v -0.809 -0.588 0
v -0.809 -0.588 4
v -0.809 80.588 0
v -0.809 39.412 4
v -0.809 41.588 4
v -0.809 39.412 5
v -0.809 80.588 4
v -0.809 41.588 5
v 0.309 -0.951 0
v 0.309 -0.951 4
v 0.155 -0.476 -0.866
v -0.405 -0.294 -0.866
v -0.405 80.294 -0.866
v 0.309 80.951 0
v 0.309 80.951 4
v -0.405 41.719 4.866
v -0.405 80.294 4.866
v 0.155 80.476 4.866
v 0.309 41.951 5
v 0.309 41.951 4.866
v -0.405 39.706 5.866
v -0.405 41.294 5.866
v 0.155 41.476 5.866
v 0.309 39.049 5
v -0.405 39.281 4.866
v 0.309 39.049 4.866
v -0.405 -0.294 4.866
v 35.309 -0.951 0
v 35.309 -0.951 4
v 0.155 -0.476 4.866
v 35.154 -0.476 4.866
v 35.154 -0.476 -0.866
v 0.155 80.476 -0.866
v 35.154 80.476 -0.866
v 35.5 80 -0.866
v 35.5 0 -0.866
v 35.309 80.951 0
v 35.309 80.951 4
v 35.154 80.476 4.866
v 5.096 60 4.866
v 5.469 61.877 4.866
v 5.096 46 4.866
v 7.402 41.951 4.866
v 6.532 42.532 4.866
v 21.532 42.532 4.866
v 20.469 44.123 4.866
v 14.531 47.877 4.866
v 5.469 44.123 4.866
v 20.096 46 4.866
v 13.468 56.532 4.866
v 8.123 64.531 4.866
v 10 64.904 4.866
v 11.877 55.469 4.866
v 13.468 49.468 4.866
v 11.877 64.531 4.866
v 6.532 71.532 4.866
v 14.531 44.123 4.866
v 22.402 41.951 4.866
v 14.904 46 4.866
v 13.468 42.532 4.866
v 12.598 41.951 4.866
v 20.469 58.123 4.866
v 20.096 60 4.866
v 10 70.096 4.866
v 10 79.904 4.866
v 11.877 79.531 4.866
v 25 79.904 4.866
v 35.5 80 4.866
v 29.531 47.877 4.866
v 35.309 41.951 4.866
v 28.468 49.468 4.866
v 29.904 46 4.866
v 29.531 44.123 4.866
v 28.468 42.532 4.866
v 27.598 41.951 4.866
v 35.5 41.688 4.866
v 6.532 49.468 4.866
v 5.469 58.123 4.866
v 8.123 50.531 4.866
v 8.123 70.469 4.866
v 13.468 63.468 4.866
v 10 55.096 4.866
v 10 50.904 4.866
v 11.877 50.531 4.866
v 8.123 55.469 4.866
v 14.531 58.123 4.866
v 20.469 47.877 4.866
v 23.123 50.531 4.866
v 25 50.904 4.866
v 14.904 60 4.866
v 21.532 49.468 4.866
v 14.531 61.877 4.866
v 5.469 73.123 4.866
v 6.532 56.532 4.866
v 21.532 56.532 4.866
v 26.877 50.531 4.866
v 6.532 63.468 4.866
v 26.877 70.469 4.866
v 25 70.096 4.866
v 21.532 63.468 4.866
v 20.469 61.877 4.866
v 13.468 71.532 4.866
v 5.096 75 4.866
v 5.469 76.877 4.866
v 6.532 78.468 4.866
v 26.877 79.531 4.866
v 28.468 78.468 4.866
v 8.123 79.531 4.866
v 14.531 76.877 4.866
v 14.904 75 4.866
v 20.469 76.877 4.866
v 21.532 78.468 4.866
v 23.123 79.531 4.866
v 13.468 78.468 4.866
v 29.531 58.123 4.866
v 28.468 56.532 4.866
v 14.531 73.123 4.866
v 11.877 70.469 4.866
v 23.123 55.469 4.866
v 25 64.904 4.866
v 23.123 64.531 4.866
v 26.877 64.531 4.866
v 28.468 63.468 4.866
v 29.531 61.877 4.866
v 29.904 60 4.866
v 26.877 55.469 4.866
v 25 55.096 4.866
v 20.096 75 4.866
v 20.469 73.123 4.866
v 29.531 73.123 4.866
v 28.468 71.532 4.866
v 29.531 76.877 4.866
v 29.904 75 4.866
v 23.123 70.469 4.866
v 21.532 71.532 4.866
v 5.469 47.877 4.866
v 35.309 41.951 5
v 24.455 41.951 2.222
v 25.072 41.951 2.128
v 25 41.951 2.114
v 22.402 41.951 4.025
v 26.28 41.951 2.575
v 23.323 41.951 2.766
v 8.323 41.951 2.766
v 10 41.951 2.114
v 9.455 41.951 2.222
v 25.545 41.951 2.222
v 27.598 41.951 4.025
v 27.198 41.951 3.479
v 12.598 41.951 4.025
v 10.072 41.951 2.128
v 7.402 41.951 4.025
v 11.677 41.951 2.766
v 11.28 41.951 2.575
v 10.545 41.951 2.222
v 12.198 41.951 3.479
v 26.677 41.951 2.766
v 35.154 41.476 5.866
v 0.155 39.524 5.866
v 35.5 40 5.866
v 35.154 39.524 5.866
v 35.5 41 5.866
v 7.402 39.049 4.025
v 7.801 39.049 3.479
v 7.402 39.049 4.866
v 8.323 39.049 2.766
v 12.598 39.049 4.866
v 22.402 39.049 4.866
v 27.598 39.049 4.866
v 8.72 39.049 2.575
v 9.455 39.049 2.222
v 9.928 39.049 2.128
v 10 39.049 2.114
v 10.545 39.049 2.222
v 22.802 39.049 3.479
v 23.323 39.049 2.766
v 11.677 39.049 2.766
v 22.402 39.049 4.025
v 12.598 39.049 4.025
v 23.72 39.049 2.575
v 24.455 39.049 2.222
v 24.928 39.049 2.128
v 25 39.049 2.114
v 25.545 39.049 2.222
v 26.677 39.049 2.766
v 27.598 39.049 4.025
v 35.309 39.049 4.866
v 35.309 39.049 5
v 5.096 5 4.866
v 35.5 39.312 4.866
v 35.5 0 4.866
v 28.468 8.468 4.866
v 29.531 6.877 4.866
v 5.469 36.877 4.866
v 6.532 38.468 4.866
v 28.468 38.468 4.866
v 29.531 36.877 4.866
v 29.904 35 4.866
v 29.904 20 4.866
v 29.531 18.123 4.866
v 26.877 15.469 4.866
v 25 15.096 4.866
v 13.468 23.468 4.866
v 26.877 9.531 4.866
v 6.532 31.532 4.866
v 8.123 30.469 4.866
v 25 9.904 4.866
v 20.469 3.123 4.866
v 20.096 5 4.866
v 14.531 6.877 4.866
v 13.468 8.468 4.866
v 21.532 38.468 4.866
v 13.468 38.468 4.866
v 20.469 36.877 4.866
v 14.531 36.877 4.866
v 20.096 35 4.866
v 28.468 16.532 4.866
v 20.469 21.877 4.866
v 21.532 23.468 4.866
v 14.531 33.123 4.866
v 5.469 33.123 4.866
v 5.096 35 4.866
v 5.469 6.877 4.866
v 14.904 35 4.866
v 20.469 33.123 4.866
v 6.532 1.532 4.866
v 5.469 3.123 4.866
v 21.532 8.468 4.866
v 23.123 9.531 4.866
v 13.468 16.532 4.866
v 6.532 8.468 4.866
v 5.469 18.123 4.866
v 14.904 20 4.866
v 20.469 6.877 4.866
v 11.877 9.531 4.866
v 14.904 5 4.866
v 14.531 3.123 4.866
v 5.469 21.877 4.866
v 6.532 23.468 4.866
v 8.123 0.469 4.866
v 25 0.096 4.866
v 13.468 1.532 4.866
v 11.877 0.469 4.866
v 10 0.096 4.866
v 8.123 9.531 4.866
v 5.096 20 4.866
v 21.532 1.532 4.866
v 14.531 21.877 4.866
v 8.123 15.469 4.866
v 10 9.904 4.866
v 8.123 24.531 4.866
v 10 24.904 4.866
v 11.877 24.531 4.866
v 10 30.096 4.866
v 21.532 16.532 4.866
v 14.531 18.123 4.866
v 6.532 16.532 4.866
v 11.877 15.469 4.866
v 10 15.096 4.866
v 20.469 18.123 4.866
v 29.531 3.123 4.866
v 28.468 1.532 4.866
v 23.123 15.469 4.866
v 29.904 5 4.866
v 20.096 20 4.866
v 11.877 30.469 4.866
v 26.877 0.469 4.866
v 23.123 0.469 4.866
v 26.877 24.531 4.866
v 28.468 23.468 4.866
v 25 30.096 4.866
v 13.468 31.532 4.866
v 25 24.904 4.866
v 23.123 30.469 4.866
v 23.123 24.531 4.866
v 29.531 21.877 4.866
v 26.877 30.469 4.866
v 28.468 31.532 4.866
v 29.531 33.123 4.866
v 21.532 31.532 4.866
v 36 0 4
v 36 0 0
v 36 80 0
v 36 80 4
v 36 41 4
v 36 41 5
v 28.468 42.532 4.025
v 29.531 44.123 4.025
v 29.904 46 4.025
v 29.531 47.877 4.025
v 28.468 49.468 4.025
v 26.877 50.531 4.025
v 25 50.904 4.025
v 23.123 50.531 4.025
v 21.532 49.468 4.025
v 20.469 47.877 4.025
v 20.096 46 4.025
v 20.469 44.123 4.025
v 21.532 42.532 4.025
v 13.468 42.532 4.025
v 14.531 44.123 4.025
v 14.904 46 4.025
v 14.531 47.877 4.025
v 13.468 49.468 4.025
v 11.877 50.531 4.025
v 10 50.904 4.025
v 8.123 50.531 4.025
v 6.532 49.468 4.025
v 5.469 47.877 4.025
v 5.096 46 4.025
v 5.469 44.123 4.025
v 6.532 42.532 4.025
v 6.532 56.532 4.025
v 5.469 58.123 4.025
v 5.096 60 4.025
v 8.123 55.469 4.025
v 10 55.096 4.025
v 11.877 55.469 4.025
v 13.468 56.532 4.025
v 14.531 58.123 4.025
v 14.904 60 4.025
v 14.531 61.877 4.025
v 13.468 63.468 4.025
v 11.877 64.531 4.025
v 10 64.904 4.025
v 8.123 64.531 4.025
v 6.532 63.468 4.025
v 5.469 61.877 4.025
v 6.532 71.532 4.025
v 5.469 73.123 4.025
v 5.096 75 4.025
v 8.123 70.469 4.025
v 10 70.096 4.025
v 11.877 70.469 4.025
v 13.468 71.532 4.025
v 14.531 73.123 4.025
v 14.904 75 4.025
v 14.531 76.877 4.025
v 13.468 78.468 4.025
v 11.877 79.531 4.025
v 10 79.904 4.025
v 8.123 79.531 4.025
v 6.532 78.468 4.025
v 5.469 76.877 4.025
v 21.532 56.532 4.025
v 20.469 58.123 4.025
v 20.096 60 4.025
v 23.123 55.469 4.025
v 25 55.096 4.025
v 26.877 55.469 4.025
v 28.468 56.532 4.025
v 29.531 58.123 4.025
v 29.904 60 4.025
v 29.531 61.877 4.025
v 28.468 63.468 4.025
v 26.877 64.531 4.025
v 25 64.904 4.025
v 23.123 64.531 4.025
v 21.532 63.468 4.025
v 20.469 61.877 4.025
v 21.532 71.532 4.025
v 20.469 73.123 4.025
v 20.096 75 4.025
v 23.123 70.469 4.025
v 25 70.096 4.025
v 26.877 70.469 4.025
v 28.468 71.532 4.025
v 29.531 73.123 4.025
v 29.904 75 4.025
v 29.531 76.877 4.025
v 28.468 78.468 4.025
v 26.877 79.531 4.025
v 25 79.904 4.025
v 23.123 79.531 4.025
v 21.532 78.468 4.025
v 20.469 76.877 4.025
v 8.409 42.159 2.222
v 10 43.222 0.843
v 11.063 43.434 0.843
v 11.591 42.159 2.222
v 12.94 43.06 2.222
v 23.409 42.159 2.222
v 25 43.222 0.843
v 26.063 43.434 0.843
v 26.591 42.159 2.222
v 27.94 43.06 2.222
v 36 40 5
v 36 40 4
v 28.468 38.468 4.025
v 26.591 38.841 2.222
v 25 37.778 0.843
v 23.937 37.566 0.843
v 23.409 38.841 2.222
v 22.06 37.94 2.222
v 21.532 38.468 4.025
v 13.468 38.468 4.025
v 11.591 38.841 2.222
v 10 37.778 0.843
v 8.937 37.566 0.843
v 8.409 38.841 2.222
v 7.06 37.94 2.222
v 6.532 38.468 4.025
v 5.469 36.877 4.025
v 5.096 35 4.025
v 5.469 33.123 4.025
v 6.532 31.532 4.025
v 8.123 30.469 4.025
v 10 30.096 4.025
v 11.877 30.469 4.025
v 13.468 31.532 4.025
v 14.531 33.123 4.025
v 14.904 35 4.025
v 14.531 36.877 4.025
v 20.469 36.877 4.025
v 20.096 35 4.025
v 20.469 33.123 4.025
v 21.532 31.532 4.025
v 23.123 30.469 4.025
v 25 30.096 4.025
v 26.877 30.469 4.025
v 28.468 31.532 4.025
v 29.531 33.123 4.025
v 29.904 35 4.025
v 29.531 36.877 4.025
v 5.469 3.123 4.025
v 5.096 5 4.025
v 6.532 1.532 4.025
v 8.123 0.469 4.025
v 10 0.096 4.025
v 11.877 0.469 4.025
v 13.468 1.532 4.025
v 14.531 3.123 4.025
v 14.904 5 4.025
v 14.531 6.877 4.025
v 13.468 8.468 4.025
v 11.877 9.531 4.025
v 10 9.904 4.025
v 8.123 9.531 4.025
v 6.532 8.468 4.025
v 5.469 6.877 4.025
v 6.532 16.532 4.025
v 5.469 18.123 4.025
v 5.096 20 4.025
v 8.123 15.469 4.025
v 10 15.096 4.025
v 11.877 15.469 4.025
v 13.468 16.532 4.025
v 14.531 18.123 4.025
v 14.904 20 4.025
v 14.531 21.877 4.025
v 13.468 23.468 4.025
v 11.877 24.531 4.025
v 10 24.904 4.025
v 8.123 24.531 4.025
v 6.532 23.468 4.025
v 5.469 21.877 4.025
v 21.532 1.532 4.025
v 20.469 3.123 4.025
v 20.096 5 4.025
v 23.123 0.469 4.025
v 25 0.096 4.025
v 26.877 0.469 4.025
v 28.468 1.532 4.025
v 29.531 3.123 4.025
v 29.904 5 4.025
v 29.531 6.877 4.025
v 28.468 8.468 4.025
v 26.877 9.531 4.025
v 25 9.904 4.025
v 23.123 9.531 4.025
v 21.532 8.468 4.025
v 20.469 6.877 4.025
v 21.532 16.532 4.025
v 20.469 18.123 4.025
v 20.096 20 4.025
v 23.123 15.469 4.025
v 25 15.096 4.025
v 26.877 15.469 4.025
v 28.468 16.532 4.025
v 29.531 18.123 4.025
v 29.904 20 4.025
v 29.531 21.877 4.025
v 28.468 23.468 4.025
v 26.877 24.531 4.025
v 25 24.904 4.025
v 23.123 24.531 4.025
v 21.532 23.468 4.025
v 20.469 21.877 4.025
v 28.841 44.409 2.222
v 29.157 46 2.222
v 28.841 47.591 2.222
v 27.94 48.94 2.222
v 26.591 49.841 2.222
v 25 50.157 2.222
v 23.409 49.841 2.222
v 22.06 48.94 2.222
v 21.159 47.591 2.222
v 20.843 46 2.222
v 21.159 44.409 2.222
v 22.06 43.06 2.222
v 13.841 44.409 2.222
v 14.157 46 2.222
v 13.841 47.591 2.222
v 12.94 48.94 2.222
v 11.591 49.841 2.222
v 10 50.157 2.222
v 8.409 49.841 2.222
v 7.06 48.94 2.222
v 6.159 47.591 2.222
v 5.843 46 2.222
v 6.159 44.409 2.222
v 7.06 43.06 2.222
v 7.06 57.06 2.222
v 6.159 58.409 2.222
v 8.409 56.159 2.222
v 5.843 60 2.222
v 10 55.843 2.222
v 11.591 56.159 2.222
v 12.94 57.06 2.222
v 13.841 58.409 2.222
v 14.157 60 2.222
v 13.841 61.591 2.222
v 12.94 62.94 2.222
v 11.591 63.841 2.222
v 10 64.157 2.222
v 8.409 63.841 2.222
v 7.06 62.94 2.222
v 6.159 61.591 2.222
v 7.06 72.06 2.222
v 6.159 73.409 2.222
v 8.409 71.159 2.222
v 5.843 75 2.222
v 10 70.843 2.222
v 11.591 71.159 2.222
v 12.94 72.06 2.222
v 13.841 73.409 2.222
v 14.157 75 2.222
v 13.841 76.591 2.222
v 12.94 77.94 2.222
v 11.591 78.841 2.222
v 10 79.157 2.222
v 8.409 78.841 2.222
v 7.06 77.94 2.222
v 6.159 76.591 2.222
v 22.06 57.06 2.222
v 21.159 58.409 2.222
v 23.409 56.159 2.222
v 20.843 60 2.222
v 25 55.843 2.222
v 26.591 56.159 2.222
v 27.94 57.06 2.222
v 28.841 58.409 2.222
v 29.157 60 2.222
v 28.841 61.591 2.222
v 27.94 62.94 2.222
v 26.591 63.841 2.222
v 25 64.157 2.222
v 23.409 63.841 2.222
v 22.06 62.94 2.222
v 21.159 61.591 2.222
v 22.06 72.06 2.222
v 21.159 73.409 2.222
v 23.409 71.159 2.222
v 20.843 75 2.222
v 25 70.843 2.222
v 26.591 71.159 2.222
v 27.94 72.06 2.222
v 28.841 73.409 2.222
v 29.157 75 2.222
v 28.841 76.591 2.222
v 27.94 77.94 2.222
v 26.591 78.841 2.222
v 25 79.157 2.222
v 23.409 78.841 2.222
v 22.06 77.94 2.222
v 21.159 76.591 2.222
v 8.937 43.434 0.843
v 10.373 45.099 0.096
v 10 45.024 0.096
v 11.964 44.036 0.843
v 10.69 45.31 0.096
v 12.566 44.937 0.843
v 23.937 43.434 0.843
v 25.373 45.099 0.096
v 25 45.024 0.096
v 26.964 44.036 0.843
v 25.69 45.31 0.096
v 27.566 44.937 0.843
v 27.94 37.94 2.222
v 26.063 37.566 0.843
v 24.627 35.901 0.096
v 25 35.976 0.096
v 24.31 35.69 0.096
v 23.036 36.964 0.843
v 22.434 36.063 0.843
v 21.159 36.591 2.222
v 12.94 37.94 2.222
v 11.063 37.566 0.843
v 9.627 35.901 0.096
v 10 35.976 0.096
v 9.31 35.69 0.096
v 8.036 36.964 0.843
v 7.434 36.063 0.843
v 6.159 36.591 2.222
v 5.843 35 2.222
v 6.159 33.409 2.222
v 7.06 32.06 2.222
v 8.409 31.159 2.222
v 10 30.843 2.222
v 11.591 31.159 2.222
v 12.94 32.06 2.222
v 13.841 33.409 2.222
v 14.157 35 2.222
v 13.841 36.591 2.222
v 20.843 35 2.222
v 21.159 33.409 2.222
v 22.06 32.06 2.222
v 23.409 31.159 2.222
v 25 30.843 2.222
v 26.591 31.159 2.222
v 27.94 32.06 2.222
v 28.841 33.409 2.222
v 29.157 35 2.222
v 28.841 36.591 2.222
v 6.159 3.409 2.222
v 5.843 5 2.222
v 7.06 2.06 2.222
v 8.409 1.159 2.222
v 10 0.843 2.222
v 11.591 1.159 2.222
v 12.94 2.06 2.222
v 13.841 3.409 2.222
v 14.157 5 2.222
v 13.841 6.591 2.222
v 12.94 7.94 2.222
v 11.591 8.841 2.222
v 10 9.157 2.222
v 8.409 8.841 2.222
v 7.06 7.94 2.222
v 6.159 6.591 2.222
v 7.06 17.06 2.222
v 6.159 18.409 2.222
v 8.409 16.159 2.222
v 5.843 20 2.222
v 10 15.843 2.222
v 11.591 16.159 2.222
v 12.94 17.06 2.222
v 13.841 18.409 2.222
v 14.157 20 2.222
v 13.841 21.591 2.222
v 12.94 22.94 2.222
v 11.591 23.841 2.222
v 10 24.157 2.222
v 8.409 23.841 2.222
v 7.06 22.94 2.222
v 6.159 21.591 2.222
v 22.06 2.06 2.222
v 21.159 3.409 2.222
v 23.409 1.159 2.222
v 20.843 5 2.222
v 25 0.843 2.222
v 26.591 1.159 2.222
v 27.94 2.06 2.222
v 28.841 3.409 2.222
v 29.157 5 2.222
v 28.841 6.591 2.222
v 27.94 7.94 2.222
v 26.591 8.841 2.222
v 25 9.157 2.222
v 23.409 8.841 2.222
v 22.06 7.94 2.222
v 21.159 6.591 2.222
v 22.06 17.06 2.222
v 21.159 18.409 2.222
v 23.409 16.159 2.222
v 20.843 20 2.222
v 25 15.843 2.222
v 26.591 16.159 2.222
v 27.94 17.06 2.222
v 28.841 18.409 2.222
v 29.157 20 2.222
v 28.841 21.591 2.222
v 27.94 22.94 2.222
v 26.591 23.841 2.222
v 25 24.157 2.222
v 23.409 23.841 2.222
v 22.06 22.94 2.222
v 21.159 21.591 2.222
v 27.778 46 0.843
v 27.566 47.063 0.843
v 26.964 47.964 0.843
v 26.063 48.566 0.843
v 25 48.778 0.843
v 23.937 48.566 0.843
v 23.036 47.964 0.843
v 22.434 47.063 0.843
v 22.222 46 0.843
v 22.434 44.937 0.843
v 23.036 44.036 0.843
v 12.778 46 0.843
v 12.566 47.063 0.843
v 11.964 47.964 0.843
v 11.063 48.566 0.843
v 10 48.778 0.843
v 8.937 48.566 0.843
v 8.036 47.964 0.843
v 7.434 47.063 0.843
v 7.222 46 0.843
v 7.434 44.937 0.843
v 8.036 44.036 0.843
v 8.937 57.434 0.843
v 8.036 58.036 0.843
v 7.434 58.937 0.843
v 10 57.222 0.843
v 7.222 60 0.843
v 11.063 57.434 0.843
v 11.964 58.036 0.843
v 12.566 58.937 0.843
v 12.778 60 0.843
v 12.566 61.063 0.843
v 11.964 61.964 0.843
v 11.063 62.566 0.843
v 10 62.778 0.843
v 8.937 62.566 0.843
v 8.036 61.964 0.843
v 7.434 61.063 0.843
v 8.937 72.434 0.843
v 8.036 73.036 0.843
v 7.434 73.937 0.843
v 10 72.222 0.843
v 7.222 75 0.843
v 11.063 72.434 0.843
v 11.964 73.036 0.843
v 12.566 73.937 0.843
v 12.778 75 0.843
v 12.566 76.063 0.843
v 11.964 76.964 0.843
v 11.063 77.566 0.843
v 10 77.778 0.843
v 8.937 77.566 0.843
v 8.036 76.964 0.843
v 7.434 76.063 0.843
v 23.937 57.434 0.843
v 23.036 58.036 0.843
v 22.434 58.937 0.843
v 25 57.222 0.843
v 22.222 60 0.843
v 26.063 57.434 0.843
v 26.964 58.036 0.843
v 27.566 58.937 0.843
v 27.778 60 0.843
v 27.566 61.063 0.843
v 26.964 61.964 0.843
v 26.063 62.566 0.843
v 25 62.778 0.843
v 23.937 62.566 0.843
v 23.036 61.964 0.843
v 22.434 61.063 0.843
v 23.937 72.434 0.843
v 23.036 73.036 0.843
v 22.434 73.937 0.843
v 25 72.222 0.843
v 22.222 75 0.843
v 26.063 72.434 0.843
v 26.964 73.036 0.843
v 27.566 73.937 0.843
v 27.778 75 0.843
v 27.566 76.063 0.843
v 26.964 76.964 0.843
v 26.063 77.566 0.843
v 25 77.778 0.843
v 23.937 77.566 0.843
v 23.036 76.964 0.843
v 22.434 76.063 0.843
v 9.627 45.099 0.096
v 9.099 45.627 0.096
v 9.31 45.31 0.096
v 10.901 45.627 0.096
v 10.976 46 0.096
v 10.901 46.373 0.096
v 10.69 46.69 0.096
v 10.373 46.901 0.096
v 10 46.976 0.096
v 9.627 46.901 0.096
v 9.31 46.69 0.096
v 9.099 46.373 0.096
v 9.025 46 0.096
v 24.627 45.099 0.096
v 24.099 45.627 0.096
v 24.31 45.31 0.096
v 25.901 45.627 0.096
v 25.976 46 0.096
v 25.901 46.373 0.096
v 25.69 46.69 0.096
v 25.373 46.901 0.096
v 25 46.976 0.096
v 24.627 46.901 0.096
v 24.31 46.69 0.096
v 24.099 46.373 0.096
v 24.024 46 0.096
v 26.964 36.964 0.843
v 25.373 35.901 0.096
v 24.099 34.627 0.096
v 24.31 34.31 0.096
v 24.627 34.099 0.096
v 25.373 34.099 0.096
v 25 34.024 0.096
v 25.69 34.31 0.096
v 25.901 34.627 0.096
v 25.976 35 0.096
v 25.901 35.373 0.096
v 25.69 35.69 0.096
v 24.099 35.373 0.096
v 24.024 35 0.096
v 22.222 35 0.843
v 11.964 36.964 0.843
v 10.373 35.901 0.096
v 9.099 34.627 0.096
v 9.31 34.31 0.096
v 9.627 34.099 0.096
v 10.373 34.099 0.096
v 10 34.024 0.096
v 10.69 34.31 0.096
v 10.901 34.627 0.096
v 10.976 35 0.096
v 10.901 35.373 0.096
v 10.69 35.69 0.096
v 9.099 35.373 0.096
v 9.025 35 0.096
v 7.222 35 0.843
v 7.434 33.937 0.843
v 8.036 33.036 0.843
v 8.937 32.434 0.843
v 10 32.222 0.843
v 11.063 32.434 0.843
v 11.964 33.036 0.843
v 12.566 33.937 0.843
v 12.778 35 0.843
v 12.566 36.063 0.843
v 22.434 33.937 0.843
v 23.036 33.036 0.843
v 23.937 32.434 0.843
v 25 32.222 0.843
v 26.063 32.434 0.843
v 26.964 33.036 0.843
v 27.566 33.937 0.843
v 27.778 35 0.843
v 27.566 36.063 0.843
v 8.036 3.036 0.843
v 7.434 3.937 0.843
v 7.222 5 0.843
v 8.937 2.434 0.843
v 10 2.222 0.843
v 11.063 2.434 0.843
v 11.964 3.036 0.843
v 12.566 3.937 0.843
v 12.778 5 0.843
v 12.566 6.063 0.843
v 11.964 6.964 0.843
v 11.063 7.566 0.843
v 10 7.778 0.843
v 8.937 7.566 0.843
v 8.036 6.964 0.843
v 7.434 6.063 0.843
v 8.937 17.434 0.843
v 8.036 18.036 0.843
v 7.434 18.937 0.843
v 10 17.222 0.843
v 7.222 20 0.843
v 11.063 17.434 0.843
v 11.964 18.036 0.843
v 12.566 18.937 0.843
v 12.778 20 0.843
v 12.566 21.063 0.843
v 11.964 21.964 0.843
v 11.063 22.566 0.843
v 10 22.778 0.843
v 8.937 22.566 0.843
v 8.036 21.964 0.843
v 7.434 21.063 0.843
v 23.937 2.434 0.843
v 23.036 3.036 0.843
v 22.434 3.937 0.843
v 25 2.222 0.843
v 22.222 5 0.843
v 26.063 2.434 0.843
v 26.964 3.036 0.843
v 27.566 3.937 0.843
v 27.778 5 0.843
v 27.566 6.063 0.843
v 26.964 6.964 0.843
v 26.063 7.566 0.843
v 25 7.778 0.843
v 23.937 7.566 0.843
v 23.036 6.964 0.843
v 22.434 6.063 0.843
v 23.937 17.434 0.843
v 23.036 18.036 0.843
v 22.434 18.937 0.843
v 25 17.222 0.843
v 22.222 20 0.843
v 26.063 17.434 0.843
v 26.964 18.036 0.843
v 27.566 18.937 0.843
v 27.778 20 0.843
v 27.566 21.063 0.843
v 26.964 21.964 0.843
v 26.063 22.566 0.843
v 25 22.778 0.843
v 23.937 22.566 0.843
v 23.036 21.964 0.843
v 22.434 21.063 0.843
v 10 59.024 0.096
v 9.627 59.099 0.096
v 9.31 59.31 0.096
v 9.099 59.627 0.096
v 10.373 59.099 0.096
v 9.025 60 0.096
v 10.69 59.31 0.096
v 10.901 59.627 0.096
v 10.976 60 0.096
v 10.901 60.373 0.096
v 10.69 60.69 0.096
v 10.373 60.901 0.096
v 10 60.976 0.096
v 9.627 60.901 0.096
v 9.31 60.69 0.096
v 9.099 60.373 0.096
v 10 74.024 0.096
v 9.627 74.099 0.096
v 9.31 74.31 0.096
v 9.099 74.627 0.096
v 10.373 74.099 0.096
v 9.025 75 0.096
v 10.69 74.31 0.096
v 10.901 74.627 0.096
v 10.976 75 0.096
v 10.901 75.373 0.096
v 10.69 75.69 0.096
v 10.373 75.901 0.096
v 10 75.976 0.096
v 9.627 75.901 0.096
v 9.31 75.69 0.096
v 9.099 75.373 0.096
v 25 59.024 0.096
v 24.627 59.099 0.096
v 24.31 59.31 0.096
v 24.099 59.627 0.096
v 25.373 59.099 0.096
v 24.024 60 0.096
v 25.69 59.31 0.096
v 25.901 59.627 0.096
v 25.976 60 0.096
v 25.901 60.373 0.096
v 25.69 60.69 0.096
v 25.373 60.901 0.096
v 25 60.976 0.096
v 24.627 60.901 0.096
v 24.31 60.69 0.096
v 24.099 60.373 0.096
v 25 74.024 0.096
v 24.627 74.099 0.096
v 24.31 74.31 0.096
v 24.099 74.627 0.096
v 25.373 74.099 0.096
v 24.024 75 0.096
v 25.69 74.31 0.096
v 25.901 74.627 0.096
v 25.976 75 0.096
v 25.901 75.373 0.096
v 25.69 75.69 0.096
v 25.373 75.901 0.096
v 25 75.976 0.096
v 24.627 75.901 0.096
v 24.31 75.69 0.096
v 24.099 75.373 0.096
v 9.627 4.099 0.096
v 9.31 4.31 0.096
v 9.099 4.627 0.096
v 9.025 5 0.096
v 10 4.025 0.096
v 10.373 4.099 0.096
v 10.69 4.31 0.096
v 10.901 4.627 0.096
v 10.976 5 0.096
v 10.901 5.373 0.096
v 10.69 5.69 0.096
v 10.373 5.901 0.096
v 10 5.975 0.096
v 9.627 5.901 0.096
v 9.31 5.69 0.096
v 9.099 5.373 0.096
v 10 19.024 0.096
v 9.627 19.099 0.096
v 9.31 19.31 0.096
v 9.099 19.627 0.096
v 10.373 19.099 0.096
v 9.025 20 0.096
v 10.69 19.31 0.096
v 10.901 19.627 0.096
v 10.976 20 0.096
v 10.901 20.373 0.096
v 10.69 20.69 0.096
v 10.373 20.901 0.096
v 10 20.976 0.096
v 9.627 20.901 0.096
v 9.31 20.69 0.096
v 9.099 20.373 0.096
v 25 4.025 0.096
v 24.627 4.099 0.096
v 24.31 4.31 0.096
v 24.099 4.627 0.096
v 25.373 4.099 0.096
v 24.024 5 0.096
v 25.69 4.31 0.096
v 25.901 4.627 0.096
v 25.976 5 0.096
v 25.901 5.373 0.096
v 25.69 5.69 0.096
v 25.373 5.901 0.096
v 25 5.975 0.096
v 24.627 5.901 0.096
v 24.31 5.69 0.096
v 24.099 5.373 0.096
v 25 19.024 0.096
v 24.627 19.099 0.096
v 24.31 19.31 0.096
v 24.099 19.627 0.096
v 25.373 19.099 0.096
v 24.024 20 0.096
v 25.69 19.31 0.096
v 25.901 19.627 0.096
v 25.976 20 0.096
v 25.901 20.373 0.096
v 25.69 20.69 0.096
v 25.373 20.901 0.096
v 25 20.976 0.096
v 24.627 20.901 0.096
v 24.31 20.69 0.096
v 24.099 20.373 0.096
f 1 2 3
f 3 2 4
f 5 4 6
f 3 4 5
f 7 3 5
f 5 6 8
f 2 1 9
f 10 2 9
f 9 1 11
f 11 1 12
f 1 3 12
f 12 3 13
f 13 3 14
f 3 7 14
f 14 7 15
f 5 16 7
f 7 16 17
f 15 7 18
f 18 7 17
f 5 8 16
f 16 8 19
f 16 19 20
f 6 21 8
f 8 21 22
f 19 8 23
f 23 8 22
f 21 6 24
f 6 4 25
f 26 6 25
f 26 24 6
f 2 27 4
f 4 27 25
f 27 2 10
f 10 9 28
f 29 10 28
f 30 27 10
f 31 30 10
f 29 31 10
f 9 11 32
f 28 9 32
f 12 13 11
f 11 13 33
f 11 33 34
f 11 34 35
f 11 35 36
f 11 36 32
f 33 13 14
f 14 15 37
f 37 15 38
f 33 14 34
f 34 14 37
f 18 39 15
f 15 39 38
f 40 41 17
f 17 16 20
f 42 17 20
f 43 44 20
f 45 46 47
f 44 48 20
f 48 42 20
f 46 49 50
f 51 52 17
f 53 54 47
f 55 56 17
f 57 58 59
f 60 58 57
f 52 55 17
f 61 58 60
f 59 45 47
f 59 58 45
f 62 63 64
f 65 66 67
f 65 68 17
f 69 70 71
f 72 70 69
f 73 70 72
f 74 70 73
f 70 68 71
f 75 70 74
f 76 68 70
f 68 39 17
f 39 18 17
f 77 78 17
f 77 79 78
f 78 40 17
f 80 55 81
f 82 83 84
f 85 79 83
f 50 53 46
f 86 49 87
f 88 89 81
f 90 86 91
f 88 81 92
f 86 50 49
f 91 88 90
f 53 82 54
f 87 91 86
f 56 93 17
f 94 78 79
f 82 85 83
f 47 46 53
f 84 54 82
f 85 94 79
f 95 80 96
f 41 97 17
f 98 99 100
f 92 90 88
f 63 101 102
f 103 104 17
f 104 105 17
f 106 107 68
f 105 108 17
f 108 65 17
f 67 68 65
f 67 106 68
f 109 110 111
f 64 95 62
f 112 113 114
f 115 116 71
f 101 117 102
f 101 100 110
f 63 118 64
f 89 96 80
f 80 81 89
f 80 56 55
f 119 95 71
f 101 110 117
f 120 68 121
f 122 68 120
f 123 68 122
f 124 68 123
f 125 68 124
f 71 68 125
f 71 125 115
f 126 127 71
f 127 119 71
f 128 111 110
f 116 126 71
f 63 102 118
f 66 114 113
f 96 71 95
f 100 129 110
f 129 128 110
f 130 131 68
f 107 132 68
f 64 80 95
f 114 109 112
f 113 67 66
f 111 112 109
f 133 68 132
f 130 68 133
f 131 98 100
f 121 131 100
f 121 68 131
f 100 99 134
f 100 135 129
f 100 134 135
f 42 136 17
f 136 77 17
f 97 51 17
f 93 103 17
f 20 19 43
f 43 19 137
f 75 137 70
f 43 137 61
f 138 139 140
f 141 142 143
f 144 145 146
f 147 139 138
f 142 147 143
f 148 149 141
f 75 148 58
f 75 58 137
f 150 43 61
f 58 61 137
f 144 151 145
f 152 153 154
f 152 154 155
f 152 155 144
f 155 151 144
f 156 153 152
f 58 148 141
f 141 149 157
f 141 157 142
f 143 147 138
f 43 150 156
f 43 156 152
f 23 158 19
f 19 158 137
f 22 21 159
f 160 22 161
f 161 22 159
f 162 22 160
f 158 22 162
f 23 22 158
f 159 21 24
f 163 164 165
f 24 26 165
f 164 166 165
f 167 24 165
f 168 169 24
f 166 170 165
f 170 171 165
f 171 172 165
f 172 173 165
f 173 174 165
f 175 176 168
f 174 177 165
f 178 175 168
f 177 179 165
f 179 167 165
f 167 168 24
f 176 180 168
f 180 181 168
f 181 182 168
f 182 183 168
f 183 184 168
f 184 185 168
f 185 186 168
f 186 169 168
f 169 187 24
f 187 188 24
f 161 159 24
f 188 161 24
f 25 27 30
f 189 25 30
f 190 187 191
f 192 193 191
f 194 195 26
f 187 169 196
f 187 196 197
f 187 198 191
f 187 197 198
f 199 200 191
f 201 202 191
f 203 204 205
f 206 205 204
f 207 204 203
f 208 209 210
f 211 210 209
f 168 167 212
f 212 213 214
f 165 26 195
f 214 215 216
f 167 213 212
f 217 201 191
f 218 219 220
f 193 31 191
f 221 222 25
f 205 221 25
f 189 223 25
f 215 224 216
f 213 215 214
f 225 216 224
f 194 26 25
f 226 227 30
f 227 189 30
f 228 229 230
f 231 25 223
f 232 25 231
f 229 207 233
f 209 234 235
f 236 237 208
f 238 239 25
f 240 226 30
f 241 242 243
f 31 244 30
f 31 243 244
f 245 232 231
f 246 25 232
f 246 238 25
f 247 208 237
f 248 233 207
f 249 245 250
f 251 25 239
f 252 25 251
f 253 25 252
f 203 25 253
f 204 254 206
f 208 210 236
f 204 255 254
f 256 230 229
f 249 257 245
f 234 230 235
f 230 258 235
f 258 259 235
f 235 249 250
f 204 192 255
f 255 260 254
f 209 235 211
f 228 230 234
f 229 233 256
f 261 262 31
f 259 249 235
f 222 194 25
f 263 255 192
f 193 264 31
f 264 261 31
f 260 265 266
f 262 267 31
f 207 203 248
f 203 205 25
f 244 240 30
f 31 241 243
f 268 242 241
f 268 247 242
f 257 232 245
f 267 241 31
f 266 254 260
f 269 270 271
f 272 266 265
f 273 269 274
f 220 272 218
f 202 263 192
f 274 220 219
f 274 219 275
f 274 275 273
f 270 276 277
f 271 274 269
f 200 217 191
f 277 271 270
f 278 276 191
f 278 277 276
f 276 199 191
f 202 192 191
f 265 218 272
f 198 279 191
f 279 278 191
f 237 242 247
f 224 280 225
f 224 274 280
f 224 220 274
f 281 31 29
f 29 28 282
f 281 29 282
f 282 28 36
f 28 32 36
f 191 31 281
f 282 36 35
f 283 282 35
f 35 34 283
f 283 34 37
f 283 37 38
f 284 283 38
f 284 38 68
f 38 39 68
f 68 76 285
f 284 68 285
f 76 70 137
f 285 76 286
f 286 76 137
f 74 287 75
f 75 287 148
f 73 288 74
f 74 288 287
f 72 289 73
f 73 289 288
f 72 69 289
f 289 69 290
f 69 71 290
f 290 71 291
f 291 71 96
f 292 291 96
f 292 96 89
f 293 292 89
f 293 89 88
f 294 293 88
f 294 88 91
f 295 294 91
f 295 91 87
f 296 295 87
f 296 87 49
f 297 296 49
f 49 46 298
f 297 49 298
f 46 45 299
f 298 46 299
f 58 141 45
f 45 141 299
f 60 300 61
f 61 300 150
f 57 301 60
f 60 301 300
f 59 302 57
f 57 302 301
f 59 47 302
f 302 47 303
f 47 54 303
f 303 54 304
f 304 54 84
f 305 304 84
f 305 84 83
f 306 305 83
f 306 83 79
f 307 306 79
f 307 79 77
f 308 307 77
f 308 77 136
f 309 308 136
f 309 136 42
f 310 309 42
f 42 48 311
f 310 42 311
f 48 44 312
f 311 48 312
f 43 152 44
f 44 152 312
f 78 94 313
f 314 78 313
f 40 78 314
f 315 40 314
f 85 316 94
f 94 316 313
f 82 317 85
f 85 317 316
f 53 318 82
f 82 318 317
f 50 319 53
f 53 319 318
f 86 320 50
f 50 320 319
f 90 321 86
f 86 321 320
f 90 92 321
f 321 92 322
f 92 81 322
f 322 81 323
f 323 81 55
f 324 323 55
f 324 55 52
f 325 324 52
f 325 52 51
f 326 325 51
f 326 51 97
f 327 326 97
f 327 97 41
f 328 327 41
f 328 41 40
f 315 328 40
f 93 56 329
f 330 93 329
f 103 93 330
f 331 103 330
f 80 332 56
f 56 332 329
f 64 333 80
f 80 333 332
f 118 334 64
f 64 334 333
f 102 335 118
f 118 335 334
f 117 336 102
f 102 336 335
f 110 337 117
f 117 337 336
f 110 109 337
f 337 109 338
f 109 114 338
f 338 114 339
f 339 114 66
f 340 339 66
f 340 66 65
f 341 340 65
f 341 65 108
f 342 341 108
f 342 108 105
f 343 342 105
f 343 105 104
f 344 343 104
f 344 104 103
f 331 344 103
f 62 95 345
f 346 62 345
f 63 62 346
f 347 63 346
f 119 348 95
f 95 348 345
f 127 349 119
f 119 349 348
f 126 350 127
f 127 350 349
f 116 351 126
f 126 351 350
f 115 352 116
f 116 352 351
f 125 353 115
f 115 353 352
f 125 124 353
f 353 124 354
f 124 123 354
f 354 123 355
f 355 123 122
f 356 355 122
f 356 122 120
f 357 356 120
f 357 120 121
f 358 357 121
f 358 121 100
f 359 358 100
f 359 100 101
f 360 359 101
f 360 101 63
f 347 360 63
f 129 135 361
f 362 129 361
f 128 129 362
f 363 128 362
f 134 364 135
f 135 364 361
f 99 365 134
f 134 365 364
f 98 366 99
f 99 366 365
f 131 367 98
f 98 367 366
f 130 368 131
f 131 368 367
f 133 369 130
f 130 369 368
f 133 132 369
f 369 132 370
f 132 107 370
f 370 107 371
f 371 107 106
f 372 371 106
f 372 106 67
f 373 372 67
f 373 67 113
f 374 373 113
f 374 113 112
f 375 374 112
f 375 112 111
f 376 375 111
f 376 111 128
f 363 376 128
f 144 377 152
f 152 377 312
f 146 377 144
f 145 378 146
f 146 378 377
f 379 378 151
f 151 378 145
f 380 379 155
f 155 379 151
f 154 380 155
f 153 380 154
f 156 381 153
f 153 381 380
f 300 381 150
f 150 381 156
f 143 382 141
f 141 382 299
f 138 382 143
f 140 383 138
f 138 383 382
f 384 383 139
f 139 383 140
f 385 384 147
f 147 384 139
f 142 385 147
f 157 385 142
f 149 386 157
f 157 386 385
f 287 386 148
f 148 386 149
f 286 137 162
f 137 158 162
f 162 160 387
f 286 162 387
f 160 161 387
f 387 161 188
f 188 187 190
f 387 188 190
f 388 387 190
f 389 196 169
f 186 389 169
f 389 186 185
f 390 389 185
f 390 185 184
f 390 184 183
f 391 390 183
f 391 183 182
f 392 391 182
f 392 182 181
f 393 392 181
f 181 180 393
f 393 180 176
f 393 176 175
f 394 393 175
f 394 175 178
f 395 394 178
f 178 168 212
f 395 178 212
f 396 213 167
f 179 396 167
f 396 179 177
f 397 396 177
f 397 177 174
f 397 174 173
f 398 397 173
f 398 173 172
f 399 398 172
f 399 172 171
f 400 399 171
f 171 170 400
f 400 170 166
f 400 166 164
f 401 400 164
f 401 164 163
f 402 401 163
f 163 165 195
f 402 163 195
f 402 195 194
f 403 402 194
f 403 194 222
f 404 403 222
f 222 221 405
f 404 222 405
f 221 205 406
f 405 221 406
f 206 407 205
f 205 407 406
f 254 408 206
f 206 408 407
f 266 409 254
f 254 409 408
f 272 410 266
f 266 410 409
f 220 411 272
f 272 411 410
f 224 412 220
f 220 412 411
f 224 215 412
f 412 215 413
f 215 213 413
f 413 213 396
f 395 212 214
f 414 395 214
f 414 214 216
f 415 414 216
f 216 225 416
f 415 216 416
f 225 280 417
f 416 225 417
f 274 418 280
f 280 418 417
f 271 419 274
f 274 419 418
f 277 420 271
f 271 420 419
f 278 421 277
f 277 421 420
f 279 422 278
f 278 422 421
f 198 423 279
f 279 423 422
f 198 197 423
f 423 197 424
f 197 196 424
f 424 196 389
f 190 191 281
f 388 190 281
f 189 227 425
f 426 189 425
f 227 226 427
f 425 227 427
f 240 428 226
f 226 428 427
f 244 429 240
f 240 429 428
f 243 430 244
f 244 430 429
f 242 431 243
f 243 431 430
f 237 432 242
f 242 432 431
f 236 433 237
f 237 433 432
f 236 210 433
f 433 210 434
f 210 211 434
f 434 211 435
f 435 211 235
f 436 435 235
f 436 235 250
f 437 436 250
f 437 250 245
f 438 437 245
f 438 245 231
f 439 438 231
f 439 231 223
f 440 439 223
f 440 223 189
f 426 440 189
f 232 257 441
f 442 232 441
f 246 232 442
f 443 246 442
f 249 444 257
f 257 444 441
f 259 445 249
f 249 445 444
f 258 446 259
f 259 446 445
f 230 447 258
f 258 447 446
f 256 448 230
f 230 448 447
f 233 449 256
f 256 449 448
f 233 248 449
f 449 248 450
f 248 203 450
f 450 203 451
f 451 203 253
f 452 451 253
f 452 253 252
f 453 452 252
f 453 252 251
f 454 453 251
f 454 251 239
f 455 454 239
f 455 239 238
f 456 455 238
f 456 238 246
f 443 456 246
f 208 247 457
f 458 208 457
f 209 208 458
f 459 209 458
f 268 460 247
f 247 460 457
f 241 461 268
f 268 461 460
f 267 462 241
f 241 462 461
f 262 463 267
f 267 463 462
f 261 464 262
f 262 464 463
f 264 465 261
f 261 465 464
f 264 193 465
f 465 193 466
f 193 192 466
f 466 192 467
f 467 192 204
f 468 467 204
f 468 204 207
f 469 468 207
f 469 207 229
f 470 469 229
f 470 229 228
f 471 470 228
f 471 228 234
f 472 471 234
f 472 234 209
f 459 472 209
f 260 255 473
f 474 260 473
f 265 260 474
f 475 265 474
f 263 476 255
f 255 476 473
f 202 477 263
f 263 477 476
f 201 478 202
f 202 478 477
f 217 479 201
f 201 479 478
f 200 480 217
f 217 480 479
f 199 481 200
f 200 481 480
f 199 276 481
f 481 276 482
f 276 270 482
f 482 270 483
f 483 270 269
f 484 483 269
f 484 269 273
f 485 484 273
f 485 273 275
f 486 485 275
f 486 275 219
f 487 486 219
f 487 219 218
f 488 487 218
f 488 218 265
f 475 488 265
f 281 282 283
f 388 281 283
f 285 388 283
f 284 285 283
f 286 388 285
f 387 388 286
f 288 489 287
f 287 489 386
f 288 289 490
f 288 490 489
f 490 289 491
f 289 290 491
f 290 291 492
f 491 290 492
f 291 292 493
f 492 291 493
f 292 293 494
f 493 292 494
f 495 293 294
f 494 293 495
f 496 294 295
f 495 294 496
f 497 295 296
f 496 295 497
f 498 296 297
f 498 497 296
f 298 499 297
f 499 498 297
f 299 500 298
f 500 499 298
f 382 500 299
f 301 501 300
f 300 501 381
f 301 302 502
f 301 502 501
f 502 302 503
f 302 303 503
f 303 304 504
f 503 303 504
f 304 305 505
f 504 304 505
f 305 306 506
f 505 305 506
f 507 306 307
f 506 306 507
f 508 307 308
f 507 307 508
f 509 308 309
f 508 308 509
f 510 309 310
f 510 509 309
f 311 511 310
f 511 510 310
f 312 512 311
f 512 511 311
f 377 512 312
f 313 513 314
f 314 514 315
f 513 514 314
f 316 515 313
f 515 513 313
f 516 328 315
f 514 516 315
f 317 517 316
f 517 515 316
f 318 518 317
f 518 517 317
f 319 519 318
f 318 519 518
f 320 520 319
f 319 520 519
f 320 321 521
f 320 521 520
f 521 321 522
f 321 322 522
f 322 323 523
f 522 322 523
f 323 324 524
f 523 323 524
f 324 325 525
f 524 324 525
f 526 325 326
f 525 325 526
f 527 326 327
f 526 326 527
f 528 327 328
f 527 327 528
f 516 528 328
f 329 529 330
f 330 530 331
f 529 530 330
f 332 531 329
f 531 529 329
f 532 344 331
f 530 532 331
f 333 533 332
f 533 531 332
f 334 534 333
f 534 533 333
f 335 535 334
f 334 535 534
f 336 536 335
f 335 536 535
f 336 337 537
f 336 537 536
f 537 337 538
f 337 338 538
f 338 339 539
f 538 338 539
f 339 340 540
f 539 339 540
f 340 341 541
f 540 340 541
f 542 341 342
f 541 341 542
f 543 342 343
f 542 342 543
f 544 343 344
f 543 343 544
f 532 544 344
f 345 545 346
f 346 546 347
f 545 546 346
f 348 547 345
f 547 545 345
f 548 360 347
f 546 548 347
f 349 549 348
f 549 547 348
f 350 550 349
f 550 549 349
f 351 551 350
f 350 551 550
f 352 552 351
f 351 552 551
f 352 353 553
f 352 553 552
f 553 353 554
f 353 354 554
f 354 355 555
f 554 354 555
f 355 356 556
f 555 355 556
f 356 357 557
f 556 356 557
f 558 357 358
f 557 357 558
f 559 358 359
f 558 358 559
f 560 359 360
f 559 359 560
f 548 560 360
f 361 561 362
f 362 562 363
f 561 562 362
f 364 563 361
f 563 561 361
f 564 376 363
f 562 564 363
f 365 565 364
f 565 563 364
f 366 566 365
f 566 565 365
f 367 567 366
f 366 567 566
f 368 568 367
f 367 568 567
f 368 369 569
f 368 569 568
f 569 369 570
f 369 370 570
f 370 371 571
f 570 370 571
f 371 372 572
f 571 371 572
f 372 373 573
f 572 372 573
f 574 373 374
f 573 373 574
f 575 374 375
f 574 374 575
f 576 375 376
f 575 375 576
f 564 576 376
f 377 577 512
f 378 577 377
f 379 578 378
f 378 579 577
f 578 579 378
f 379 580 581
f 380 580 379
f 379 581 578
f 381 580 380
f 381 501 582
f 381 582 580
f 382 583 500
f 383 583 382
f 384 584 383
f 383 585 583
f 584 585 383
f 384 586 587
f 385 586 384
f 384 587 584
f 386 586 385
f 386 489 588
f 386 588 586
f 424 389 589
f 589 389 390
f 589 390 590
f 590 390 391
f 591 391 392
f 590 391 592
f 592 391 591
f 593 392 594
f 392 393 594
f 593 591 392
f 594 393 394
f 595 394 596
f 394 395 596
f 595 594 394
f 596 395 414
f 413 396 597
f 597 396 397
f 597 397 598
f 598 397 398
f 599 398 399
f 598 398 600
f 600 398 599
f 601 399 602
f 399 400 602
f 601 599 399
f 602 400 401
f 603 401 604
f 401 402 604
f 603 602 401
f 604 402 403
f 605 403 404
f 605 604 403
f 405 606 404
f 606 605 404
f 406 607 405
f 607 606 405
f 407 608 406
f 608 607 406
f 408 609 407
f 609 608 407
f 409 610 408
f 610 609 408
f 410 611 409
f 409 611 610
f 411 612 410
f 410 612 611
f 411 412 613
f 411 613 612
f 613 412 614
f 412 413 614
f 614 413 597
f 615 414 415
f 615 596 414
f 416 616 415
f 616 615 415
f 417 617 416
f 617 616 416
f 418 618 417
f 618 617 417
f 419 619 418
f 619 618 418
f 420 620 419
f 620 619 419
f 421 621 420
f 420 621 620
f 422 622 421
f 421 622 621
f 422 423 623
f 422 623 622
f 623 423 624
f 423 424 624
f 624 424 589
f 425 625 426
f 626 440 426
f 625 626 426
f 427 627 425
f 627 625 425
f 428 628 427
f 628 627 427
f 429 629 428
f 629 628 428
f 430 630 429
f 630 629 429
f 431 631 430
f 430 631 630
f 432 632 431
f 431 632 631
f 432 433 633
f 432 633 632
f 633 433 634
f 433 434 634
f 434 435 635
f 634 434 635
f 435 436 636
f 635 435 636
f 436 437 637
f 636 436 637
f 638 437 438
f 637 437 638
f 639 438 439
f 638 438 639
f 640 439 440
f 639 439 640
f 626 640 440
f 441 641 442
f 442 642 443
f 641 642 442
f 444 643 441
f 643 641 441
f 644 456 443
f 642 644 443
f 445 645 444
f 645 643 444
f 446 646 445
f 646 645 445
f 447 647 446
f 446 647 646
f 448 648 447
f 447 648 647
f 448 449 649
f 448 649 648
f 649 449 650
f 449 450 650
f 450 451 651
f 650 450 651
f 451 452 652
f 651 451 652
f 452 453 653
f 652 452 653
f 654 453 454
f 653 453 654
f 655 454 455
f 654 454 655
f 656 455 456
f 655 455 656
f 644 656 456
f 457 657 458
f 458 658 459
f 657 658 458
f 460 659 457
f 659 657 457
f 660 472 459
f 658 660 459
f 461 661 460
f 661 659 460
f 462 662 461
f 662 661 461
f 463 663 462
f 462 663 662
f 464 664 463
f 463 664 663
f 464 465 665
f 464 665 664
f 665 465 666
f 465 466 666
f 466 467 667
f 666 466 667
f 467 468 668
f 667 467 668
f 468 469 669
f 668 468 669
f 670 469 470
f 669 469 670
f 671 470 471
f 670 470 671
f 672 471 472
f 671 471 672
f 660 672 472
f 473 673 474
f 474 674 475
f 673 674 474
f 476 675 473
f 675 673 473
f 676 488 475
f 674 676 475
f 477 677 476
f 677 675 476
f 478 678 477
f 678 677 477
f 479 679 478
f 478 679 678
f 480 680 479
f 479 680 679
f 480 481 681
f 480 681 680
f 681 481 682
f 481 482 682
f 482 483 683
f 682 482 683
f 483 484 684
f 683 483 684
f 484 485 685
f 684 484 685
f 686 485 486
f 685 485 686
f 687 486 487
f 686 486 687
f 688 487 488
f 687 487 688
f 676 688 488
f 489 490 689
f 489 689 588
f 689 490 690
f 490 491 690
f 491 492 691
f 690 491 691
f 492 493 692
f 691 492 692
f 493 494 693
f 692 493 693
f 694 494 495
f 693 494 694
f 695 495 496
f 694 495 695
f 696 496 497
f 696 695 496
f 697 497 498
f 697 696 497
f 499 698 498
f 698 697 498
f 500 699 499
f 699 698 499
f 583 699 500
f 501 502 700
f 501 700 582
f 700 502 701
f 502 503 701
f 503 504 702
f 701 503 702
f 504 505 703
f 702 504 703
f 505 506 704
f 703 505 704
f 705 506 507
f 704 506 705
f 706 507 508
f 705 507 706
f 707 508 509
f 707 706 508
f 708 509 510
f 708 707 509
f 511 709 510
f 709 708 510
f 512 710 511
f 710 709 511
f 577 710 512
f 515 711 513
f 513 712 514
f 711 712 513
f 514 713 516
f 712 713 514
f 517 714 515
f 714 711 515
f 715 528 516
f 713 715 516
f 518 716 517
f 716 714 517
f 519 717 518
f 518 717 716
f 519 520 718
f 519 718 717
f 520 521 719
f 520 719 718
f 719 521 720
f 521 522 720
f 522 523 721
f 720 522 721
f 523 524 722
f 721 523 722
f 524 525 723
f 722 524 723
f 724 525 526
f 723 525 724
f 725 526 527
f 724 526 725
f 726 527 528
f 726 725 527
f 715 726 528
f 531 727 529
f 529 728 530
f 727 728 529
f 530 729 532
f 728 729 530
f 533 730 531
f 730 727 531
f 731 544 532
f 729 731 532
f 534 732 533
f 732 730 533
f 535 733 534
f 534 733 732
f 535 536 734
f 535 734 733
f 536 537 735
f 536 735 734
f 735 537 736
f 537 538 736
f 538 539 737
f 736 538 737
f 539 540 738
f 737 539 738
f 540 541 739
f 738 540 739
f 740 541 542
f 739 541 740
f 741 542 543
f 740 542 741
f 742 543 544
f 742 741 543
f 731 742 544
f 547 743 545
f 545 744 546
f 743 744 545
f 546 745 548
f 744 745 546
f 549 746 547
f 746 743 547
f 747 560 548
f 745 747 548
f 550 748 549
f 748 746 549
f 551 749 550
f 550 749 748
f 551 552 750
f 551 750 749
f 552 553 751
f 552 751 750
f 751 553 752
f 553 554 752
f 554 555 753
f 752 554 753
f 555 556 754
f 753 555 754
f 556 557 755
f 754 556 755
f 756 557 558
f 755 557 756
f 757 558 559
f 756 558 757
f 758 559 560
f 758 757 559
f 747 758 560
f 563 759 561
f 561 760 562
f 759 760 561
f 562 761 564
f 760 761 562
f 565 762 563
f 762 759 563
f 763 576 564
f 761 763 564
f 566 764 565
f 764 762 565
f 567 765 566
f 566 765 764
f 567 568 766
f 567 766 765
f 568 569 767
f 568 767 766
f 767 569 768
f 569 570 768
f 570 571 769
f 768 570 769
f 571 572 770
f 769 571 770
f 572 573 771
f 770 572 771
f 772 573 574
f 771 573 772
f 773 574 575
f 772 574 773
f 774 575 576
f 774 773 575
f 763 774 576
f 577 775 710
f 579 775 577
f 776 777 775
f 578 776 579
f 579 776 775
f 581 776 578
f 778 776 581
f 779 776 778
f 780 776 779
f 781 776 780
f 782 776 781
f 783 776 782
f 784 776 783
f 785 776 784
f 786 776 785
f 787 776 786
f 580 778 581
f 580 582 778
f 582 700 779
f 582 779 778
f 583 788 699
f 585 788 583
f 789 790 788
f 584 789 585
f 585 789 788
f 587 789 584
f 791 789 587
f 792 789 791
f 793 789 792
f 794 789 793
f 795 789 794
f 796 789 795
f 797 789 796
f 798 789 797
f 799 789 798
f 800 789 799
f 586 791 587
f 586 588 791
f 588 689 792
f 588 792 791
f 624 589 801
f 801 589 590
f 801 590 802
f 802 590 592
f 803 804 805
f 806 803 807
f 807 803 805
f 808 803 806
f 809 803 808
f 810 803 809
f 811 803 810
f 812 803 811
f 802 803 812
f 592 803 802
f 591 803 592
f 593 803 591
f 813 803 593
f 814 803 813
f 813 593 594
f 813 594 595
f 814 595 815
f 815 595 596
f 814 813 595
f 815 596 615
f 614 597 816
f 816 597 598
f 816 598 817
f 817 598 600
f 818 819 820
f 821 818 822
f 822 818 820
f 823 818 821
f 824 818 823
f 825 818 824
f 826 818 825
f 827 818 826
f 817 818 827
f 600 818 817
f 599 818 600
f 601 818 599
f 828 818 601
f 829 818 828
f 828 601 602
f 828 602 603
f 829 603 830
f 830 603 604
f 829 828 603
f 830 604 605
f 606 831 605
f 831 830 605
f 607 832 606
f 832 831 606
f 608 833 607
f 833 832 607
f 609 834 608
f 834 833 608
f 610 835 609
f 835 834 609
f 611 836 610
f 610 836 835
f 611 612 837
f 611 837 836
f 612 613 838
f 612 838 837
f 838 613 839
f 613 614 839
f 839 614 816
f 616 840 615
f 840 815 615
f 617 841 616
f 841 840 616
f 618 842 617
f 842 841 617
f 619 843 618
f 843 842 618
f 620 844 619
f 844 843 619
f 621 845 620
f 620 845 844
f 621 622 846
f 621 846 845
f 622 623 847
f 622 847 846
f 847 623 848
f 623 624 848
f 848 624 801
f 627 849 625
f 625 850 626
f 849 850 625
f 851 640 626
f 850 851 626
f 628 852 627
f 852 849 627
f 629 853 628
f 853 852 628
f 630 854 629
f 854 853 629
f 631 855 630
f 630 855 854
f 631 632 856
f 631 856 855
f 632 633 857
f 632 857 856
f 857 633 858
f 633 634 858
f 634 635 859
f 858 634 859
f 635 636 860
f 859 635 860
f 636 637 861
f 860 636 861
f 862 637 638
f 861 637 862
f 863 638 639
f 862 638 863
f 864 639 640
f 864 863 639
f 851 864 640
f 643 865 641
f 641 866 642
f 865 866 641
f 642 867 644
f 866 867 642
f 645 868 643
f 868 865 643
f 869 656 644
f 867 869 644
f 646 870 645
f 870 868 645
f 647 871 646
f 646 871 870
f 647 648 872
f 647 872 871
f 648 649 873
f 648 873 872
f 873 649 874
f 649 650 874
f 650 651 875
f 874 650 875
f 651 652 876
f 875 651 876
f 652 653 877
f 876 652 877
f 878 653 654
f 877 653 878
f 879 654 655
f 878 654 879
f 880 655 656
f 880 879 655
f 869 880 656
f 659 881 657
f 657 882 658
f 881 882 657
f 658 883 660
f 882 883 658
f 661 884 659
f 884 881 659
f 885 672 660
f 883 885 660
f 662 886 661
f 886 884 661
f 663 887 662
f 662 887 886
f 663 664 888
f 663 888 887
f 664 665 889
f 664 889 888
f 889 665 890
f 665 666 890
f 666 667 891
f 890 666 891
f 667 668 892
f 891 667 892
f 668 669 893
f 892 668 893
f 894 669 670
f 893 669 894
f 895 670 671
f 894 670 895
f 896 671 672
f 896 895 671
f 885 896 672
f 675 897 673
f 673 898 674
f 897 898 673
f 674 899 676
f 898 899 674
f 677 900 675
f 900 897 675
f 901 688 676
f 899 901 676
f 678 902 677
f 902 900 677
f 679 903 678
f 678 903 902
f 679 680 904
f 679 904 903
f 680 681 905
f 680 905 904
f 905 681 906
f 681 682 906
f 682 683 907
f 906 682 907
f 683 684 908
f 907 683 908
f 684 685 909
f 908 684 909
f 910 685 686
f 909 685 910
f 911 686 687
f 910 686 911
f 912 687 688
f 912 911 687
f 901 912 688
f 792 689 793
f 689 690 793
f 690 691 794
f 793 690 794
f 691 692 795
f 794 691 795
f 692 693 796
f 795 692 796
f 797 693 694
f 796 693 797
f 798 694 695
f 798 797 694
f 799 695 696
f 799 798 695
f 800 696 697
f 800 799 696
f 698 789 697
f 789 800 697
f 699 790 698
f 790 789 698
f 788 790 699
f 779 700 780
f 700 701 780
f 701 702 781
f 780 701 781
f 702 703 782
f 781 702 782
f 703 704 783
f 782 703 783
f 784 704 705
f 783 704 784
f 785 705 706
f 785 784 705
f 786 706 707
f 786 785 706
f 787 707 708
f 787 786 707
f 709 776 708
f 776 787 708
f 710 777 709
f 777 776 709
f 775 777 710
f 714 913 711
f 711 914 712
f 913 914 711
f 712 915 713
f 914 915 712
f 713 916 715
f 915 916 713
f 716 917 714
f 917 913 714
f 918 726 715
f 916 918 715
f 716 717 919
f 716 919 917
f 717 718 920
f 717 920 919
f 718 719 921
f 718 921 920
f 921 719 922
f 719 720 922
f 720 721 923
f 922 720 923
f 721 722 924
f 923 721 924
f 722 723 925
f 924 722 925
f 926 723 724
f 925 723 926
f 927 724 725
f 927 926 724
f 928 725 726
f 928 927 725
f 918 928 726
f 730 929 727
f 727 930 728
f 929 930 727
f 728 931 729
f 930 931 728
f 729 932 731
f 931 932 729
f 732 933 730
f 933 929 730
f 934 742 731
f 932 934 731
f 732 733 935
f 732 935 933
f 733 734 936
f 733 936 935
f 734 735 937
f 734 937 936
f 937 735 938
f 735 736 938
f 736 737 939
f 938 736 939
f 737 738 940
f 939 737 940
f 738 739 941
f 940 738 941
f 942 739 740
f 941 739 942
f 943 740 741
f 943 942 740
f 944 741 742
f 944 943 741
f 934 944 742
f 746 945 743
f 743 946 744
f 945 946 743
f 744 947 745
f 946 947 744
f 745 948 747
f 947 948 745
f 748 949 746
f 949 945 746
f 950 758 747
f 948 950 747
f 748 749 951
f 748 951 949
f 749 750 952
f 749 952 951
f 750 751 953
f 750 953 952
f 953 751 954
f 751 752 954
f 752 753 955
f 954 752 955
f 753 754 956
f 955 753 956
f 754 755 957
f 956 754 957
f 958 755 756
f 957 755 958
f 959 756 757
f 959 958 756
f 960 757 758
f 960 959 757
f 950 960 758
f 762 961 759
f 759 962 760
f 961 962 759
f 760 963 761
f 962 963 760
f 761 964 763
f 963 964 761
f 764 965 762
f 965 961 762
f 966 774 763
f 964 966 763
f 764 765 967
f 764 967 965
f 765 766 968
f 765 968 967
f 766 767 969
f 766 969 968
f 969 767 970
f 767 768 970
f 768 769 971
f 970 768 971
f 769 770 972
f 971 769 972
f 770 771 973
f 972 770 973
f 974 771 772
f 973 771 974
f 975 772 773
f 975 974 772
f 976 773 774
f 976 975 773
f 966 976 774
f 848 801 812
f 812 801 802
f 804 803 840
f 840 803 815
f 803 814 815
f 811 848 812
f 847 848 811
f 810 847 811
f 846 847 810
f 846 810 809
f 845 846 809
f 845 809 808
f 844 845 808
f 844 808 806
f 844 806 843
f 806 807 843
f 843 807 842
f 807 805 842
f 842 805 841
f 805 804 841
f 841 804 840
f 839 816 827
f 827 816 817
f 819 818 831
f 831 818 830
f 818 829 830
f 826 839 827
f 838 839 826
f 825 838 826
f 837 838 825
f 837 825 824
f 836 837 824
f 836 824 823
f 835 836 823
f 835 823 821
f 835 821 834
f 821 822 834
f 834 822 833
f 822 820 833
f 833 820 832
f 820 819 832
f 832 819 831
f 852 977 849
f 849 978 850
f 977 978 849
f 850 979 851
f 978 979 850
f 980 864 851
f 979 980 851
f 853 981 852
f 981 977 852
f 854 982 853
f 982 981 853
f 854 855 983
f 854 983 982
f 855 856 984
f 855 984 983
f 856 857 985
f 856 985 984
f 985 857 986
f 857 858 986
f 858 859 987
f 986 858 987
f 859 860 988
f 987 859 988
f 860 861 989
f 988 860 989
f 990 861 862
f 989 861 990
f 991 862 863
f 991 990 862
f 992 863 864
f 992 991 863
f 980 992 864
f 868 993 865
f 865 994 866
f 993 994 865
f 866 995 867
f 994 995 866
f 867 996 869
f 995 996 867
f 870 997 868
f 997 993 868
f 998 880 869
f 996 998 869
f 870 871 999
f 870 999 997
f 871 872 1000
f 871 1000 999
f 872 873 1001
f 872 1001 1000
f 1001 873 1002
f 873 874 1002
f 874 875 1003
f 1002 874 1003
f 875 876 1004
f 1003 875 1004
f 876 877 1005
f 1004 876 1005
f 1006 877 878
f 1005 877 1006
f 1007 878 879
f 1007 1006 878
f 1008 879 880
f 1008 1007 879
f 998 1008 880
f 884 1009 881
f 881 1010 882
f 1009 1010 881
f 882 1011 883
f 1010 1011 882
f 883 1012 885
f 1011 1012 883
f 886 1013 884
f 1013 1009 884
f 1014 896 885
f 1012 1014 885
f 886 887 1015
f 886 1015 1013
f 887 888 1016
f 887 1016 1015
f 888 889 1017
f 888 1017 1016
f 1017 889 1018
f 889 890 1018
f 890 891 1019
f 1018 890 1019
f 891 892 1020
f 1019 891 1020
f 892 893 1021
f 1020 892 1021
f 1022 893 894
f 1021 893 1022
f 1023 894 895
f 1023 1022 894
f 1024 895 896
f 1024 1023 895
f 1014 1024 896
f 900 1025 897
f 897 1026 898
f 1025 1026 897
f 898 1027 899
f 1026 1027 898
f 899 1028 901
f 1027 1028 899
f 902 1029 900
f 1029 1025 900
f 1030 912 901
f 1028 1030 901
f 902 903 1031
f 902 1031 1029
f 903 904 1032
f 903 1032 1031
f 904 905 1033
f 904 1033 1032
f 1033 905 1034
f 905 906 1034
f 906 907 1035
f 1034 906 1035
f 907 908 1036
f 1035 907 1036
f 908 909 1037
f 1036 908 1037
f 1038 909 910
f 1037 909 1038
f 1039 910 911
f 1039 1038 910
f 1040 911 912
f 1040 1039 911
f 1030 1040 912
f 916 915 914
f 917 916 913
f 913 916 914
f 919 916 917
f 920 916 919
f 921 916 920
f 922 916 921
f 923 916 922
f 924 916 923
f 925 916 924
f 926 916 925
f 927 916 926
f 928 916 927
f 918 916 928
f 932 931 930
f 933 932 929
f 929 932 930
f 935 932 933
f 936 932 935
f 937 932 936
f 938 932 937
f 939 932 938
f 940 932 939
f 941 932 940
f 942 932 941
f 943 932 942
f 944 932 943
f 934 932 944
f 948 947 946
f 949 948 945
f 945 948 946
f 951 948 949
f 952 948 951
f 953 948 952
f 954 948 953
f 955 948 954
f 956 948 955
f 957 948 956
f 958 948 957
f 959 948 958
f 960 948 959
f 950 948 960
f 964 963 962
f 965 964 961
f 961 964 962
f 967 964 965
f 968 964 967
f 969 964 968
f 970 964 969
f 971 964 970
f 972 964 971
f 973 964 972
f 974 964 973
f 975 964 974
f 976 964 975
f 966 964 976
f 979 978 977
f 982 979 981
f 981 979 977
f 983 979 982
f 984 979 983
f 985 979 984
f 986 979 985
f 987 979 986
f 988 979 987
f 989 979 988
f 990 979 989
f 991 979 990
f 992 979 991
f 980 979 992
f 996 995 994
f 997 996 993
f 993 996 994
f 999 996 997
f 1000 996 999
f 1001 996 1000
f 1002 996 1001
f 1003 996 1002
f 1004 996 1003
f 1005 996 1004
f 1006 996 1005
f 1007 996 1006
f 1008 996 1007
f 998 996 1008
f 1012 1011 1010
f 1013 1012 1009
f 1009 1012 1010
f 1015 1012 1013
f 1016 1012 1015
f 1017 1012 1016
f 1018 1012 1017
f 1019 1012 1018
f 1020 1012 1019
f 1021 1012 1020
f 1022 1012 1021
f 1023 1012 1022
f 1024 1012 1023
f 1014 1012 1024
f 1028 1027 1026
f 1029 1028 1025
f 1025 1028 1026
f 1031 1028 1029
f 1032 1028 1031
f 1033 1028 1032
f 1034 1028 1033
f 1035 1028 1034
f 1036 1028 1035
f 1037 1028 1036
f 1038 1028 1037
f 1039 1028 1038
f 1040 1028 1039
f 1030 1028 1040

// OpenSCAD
// Loguncov Maxim 13.12.13


//$fn=128;


translate([0,40,0])
minkowski()
{cube([35,1,5]);
sphere(1);
}

difference() {

//основа
minkowski()
{cube([35,80,4]);
sphere(1);
}

//отверстия
translate([10,5,5])sphere(5);
translate([25,5,5])sphere(5);
translate([10,20,5])sphere(5);
translate([25,20,5])sphere(5);
translate([10,35,5])sphere(5);
translate([25,35,5])sphere(5);

translate([10,75,5])sphere(5);
translate([25,46,5])sphere(5);
translate([25,75,5])sphere(5);
translate([10,46,5])sphere(5);
translate([10,60,5])sphere(5);
translate([25,60,5])sphere(5);
}
